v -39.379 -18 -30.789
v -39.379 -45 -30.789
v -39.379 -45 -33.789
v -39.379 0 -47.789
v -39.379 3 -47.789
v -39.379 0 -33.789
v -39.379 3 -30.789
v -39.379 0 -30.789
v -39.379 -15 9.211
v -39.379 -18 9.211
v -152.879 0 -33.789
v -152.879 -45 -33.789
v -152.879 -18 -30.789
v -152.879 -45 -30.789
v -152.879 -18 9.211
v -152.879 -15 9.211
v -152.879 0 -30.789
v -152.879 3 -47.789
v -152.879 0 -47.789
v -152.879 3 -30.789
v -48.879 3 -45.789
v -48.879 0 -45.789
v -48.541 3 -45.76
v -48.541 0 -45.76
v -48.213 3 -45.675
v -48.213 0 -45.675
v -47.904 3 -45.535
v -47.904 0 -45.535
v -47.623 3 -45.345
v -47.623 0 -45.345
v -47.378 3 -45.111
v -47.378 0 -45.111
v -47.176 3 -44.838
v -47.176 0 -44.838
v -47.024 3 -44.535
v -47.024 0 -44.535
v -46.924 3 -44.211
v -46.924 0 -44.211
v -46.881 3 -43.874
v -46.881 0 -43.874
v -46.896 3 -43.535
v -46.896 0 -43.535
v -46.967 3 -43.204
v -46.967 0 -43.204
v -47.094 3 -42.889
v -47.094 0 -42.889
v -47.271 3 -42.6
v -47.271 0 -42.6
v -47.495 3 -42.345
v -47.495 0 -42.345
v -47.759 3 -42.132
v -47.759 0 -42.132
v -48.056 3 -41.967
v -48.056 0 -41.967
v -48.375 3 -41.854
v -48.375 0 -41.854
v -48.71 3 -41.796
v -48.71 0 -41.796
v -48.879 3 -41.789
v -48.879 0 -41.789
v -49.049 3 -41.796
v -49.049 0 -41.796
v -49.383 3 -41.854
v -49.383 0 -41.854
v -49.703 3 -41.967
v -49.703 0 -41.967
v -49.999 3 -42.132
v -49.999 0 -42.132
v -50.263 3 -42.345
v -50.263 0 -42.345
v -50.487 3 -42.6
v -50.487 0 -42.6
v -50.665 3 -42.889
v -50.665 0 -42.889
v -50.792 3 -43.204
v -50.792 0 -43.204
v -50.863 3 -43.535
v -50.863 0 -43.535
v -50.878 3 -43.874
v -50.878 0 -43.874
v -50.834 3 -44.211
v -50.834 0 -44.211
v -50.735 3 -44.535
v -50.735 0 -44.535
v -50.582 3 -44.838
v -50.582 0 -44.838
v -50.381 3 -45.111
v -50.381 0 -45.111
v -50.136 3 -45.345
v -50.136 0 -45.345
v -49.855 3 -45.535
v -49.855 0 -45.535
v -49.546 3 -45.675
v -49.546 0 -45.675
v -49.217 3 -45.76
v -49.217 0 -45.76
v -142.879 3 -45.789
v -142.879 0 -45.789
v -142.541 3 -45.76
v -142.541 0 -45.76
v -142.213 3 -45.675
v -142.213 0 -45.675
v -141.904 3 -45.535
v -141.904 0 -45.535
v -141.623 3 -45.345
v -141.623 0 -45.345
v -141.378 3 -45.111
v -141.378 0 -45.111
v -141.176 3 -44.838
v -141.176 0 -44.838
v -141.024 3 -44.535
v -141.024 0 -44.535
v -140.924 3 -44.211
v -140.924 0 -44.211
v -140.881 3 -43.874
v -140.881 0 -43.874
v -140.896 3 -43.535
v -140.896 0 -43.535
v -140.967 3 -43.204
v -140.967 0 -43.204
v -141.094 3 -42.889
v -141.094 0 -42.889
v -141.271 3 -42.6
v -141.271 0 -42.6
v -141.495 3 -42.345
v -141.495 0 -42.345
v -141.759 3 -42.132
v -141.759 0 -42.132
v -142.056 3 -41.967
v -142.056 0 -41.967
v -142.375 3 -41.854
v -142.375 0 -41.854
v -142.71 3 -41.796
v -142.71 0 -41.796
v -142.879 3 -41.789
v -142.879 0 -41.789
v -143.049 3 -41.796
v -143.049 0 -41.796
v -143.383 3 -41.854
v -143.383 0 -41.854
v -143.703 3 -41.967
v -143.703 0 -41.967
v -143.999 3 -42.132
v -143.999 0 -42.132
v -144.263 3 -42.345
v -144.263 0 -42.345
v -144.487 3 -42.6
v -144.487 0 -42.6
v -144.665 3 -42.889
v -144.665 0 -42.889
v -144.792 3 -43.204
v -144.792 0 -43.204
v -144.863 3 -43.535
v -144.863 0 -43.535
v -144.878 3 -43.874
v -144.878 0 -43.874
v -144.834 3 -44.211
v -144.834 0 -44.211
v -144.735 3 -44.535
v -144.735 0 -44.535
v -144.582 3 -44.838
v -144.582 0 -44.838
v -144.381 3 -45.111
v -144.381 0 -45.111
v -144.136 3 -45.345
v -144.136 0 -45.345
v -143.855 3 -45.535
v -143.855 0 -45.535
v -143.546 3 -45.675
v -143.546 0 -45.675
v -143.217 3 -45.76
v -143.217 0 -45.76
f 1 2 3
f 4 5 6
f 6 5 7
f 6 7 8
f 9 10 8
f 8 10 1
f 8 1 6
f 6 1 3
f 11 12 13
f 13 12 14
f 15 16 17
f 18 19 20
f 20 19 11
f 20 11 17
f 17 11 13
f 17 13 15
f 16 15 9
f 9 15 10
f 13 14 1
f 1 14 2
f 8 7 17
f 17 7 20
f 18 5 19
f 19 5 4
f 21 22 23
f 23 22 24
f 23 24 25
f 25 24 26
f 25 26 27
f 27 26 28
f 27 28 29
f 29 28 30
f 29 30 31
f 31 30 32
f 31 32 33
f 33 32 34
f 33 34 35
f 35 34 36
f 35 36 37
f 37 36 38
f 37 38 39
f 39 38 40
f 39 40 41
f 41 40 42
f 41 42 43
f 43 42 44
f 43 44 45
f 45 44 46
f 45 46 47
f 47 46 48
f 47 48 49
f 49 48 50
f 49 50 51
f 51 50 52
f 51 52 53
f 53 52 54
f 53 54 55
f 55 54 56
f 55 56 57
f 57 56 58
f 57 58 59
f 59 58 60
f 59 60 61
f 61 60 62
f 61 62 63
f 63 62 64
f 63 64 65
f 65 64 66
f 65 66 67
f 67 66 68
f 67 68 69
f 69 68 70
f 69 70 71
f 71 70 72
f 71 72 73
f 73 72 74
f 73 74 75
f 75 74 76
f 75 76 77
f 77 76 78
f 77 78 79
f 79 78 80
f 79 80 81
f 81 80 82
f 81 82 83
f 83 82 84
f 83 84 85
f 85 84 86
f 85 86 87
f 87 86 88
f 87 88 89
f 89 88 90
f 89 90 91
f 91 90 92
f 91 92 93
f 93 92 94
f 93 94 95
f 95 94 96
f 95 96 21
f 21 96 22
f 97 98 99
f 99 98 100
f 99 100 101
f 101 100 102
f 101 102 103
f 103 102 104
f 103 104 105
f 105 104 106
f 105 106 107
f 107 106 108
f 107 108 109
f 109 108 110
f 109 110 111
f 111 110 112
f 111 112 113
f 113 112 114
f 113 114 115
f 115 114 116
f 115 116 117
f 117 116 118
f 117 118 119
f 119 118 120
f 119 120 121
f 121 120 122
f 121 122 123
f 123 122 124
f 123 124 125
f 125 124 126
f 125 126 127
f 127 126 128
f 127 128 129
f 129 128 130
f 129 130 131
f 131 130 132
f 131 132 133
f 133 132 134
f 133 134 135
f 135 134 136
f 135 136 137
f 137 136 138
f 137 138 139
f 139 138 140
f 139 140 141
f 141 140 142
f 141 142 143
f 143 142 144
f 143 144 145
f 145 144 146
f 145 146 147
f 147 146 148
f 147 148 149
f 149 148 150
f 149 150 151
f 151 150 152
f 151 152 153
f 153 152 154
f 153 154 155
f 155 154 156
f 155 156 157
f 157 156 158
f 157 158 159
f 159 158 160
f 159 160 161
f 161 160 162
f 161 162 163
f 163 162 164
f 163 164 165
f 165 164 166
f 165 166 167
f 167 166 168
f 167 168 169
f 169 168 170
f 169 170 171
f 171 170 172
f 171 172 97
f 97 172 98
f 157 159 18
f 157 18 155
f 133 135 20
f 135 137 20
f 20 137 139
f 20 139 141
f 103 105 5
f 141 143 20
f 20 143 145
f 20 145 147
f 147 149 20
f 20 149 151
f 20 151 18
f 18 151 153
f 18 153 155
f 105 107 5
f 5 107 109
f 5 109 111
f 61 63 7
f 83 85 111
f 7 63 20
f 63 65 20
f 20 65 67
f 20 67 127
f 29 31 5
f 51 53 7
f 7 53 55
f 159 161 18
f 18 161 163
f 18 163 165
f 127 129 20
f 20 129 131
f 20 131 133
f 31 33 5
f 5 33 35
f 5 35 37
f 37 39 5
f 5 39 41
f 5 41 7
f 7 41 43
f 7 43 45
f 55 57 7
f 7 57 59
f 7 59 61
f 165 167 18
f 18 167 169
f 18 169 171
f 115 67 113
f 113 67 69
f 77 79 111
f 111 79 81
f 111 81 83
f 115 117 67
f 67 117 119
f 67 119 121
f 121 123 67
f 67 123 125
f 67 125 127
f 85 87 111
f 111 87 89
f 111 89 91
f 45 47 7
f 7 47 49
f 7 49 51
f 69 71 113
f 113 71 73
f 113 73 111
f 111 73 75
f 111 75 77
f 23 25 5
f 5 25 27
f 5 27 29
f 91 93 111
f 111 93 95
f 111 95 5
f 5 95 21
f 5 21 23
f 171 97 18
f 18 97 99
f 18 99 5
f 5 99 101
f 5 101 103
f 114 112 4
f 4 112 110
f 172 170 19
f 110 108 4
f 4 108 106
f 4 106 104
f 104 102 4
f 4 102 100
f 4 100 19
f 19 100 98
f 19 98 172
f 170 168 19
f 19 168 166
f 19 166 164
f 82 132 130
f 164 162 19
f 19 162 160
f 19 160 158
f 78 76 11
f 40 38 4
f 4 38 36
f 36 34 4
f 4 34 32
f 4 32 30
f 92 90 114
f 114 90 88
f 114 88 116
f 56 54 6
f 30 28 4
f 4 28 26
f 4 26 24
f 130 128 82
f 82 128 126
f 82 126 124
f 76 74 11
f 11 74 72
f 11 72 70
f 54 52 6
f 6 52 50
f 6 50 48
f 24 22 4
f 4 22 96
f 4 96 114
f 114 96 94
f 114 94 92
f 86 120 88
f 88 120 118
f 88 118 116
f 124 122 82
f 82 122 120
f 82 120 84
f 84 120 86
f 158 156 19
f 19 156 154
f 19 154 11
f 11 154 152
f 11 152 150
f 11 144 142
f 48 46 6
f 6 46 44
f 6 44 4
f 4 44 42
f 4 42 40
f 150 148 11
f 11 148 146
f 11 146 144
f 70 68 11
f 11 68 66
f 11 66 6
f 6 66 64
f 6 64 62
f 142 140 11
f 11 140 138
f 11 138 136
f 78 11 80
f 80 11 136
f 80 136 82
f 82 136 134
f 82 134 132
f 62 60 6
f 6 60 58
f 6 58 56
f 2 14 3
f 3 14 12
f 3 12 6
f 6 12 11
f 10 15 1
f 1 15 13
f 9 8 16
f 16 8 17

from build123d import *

# Parameters (mm, degrees)
BOSS_EXTRU_1_DEPTH      = 3
ESQUISSE2_W             = 113.5
ESQUISSE2_H             = 3
ESQUISSE2_H_2           = 45
BOSS_EXTRU_2_DEPTH      = 3
ESQUISSE3_W             = 113.5
ESQUISSE3_H             = 18
BOSS_EXTRU_3_DEPTH      = 40
ENL_V_MAT_EXTRU_1_DEPTH = 132.114678423


with BuildPart() as part:
    # Esquisse1 → Boss.-Extru.1 (new body)
    with BuildSketch(Plane(origin=(0, 0, 0), x_dir=(1, 0, 0), z_dir=(0, 1, 0))):
        with BuildLine():
            Line((-46.879360142, 43.789213198), (-39.379360142, 43.789213198))
            Line((-39.379360142, 43.789213198), (-39.379360142, 47.789213198))
            Line((-39.379360142, 47.789213198), (-152.879360142, 47.789213198))
            Line((-152.879360142, 47.789213198), (-152.879360142, 43.789213198))
            Line((-152.879360142, 43.789213198), (-144.879360142, 43.789213198))
            ThreePointArc((-144.879360142, 43.789213198), (-142.879360142, 45.789213198), (-140.879360142, 43.789213198))
            Line((-140.879360142, 43.789213198), (-50.879360142, 43.789213198))
            ThreePointArc((-50.879360142, 43.789213198), (-48.879360142, 45.789213198), (-46.879360142, 43.789213198))
        make_face()
        with BuildLine():
            Line((-39.379360142, 33.789213198), (-39.379360142, 43.789213198))
            Line((-39.379360142, 43.789213198), (-46.879360142, 43.789213198))
            ThreePointArc((-46.879360142, 43.789213198), (-48.879360142, 41.789213198), (-50.879360142, 43.789213198))
            Line((-50.879360142, 43.789213198), (-140.879360142, 43.789213198))
            ThreePointArc((-140.879360142, 43.789213198), (-142.879360142, 41.789213198), (-144.879360142, 43.789213198))
            Line((-144.879360142, 43.789213198), (-152.879360142, 43.789213198))
            Line((-152.879360142, 43.789213198), (-152.879360142, 33.789213198))
            Line((-152.879360142, 33.789213198), (-39.379360142, 33.789213198))
        make_face()
    extrude(amount=BOSS_EXTRU_1_DEPTH)

    # Esquisse2 → Boss.-Extru.2 (add)
    with BuildSketch(Plane.XY.offset(-33.789213198)):
        with Locations((-96.129360142, 1.5)):
            Rectangle(ESQUISSE2_W, ESQUISSE2_H)
        with Locations((-96.129360142, -22.5)):
            Rectangle(ESQUISSE2_W, ESQUISSE2_H_2)
    extrude(amount=BOSS_EXTRU_2_DEPTH)

    # Esquisse3 → Boss.-Extru.3 (add)
    with BuildSketch(Plane.XY.offset(-30.789213198)):
        with Locations((-96.129360142, -9)):
            Rectangle(ESQUISSE3_W, ESQUISSE3_H)
    extrude(amount=BOSS_EXTRU_3_DEPTH)

    # Esquisse5 → Enlèv. mat.-Extru.1 (cut, through all)
    with BuildSketch(Plane.ZY.offset(152.879360142)):
        Polygon((-30.789213198, 0), (9.210786802, -15), (9.210786802, 0), align=None)
    extrude(amount=-ENL_V_MAT_EXTRU_1_DEPTH, mode=Mode.SUBTRACT)


solid = part.part
